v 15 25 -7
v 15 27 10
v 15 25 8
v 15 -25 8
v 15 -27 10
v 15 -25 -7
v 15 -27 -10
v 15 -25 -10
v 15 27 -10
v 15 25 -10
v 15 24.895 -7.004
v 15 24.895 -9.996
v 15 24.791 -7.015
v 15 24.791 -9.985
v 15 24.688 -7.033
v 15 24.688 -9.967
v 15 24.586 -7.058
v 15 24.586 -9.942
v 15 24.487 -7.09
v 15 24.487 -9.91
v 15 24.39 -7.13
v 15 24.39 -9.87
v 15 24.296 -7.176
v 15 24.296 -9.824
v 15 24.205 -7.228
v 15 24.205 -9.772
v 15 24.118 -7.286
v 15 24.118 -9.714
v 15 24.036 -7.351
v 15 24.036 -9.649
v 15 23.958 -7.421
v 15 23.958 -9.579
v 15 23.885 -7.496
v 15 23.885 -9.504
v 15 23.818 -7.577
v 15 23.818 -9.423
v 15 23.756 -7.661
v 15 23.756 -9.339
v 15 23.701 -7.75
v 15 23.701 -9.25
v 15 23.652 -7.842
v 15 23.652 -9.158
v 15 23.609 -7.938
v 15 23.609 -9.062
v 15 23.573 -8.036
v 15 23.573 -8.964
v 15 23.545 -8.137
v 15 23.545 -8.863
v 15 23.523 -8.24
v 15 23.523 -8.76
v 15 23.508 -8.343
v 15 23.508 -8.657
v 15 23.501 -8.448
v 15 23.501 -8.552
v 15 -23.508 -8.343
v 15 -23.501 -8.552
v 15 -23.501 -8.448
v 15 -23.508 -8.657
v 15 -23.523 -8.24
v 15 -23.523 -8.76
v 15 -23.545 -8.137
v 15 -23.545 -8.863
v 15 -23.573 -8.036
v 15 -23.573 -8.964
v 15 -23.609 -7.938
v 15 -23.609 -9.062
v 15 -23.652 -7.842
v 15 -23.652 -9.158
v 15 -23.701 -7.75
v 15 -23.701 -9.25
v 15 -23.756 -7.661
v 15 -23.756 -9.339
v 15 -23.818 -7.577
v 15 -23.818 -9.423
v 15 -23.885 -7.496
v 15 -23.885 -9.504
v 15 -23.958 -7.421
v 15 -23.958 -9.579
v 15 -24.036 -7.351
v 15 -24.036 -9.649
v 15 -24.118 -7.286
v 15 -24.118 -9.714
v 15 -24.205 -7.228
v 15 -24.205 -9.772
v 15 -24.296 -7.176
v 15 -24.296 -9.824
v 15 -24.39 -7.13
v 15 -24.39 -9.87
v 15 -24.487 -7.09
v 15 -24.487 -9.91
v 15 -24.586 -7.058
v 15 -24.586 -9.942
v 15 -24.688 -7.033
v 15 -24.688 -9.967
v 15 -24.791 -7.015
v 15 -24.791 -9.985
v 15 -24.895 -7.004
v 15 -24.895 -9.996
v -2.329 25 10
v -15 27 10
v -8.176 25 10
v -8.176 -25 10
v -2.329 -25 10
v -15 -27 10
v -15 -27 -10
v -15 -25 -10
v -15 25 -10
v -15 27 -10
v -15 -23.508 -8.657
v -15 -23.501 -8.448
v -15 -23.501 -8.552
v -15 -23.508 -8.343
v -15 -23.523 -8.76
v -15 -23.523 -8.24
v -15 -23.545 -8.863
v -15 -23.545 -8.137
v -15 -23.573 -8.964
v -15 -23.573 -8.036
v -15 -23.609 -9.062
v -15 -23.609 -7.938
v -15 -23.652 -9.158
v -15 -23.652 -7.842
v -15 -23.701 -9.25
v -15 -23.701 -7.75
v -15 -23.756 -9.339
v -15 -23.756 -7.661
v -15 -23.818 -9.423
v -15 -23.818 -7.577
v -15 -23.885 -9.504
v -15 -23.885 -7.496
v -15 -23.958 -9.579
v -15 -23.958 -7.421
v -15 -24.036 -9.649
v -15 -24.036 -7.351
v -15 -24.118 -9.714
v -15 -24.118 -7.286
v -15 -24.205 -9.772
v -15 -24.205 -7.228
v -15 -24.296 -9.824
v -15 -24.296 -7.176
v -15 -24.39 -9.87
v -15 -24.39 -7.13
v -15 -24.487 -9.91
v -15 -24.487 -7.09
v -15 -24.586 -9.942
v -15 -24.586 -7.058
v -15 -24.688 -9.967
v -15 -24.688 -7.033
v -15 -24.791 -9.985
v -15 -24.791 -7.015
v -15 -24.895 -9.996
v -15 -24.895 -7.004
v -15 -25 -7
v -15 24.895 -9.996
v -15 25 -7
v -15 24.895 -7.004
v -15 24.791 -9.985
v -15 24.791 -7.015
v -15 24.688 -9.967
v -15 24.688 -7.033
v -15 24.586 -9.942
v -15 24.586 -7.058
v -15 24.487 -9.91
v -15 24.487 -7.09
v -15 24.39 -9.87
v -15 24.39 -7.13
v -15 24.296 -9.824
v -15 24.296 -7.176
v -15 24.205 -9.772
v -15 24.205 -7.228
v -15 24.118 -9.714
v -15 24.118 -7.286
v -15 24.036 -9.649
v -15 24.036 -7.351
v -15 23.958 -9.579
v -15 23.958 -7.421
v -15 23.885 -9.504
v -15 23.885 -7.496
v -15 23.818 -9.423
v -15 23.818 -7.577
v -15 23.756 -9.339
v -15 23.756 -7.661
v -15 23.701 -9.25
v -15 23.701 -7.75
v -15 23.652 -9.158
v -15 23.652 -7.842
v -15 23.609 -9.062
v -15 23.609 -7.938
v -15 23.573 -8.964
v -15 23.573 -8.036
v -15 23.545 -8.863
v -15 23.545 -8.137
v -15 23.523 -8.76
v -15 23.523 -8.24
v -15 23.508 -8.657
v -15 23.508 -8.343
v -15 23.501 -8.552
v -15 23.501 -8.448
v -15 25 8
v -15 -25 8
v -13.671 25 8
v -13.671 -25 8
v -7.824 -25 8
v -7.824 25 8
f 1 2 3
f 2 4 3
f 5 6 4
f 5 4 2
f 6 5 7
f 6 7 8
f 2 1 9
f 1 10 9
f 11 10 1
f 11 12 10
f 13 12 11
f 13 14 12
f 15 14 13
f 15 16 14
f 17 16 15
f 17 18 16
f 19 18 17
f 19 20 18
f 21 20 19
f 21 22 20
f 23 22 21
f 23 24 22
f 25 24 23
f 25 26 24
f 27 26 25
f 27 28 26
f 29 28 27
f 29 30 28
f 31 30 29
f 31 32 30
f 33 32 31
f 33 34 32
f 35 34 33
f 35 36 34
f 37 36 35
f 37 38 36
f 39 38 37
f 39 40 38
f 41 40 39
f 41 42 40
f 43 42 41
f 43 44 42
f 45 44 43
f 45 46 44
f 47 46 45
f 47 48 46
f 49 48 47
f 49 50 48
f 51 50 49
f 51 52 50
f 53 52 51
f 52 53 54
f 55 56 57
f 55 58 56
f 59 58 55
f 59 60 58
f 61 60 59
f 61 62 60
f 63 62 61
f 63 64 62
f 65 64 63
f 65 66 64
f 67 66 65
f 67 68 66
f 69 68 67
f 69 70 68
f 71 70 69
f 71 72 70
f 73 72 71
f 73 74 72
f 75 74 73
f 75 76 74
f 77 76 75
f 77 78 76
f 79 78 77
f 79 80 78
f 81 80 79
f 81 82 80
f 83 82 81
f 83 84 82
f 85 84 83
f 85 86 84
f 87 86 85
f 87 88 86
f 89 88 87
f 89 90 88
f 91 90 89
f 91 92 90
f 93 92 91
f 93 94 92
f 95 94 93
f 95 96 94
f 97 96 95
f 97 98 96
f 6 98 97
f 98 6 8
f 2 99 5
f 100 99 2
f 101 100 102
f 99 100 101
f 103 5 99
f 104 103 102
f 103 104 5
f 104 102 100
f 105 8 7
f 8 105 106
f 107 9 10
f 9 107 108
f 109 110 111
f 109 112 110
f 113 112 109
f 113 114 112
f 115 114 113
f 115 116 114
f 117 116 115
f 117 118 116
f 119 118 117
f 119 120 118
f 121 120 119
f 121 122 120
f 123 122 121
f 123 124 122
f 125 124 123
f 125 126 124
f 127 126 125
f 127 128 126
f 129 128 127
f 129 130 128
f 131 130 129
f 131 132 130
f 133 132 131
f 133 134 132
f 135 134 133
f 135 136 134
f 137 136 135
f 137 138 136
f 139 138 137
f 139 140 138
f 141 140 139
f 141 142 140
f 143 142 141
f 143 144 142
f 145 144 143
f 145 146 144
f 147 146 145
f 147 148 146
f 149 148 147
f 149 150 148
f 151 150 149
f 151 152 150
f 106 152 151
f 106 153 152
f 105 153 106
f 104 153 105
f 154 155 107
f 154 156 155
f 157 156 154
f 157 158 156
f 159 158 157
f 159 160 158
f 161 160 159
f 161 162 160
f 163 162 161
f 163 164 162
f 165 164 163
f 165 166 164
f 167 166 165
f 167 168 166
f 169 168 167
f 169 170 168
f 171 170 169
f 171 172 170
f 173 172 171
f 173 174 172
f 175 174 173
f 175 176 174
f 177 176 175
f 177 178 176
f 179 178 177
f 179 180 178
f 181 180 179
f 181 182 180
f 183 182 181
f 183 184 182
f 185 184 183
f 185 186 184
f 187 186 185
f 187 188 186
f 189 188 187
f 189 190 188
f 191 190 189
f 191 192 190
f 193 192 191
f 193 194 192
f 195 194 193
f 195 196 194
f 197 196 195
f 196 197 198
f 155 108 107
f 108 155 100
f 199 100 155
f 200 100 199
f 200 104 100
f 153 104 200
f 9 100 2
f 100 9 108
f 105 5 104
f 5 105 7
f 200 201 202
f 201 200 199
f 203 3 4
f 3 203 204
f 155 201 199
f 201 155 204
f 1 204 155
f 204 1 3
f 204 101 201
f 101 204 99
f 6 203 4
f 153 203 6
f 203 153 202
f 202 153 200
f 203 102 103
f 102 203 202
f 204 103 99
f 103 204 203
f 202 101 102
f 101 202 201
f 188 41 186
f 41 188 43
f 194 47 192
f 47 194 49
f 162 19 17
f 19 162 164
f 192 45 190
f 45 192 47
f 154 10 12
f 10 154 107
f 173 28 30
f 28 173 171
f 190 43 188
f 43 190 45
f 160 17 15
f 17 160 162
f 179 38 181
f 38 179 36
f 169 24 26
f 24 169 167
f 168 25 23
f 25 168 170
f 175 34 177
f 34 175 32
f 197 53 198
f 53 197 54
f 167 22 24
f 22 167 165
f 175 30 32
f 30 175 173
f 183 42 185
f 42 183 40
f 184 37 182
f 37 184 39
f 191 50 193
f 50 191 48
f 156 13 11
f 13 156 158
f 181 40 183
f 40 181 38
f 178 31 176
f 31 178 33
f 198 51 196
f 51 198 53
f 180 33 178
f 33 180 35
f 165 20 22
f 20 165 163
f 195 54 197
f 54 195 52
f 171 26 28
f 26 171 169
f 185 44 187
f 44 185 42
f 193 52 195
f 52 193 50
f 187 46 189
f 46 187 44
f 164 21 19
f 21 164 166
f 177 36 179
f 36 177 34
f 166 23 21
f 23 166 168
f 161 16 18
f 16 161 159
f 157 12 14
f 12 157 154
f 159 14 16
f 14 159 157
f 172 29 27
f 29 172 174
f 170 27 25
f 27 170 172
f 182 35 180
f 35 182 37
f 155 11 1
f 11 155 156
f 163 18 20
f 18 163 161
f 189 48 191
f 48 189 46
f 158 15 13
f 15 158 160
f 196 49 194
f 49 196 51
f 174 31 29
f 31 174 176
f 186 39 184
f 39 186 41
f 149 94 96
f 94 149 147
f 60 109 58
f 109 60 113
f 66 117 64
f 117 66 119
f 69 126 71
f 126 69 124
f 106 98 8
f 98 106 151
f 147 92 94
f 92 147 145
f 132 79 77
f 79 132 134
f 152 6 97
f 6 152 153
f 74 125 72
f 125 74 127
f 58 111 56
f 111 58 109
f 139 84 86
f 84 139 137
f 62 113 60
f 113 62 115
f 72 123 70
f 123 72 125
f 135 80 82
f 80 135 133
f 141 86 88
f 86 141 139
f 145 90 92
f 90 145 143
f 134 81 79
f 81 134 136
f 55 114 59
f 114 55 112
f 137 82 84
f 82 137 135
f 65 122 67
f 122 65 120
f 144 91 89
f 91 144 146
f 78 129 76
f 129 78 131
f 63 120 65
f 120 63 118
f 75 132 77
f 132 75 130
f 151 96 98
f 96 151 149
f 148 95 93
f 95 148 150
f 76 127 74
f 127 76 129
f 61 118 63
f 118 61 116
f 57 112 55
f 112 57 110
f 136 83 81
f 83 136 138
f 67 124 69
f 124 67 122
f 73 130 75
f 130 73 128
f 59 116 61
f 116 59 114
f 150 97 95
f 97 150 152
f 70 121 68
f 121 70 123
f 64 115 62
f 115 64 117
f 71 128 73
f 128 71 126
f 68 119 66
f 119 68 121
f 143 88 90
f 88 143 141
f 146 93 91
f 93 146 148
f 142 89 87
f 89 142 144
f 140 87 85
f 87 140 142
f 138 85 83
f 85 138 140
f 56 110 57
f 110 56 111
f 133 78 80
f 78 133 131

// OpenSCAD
$fn=90;
tapeWidth = 50;
overallWidth = tapeWidth+4;
height = 20;
length = 30;
topThickness = 2;

difference(){
	cube([length, overallWidth, height], center=true);
	
	#translate([0, 0, -topThickness/2])
		cube([length, tapeWidth, height-topThickness], center=true);
	
	#translate([-8, 0, height/2-1])
		rotate([0, 70, 0])
			cube([2, tapeWidth, 15], center=true);
}


bottomHolderHeight = 3;
translate([0, tapeWidth/2, -height/2+bottomHolderHeight/2])
	rotate([0, 90, 0])
		cylinder(d=bottomHolderHeight, h=length, center=true);
translate([0, -tapeWidth/2, -height/2+bottomHolderHeight/2])
	rotate([0, 90, 0])
		cylinder(d=bottomHolderHeight, h=length, center=true);

//#translate([0, 0, -topThickness/2])
	//cube([length, tapeWidth-3, height-topThickness], center=true);
